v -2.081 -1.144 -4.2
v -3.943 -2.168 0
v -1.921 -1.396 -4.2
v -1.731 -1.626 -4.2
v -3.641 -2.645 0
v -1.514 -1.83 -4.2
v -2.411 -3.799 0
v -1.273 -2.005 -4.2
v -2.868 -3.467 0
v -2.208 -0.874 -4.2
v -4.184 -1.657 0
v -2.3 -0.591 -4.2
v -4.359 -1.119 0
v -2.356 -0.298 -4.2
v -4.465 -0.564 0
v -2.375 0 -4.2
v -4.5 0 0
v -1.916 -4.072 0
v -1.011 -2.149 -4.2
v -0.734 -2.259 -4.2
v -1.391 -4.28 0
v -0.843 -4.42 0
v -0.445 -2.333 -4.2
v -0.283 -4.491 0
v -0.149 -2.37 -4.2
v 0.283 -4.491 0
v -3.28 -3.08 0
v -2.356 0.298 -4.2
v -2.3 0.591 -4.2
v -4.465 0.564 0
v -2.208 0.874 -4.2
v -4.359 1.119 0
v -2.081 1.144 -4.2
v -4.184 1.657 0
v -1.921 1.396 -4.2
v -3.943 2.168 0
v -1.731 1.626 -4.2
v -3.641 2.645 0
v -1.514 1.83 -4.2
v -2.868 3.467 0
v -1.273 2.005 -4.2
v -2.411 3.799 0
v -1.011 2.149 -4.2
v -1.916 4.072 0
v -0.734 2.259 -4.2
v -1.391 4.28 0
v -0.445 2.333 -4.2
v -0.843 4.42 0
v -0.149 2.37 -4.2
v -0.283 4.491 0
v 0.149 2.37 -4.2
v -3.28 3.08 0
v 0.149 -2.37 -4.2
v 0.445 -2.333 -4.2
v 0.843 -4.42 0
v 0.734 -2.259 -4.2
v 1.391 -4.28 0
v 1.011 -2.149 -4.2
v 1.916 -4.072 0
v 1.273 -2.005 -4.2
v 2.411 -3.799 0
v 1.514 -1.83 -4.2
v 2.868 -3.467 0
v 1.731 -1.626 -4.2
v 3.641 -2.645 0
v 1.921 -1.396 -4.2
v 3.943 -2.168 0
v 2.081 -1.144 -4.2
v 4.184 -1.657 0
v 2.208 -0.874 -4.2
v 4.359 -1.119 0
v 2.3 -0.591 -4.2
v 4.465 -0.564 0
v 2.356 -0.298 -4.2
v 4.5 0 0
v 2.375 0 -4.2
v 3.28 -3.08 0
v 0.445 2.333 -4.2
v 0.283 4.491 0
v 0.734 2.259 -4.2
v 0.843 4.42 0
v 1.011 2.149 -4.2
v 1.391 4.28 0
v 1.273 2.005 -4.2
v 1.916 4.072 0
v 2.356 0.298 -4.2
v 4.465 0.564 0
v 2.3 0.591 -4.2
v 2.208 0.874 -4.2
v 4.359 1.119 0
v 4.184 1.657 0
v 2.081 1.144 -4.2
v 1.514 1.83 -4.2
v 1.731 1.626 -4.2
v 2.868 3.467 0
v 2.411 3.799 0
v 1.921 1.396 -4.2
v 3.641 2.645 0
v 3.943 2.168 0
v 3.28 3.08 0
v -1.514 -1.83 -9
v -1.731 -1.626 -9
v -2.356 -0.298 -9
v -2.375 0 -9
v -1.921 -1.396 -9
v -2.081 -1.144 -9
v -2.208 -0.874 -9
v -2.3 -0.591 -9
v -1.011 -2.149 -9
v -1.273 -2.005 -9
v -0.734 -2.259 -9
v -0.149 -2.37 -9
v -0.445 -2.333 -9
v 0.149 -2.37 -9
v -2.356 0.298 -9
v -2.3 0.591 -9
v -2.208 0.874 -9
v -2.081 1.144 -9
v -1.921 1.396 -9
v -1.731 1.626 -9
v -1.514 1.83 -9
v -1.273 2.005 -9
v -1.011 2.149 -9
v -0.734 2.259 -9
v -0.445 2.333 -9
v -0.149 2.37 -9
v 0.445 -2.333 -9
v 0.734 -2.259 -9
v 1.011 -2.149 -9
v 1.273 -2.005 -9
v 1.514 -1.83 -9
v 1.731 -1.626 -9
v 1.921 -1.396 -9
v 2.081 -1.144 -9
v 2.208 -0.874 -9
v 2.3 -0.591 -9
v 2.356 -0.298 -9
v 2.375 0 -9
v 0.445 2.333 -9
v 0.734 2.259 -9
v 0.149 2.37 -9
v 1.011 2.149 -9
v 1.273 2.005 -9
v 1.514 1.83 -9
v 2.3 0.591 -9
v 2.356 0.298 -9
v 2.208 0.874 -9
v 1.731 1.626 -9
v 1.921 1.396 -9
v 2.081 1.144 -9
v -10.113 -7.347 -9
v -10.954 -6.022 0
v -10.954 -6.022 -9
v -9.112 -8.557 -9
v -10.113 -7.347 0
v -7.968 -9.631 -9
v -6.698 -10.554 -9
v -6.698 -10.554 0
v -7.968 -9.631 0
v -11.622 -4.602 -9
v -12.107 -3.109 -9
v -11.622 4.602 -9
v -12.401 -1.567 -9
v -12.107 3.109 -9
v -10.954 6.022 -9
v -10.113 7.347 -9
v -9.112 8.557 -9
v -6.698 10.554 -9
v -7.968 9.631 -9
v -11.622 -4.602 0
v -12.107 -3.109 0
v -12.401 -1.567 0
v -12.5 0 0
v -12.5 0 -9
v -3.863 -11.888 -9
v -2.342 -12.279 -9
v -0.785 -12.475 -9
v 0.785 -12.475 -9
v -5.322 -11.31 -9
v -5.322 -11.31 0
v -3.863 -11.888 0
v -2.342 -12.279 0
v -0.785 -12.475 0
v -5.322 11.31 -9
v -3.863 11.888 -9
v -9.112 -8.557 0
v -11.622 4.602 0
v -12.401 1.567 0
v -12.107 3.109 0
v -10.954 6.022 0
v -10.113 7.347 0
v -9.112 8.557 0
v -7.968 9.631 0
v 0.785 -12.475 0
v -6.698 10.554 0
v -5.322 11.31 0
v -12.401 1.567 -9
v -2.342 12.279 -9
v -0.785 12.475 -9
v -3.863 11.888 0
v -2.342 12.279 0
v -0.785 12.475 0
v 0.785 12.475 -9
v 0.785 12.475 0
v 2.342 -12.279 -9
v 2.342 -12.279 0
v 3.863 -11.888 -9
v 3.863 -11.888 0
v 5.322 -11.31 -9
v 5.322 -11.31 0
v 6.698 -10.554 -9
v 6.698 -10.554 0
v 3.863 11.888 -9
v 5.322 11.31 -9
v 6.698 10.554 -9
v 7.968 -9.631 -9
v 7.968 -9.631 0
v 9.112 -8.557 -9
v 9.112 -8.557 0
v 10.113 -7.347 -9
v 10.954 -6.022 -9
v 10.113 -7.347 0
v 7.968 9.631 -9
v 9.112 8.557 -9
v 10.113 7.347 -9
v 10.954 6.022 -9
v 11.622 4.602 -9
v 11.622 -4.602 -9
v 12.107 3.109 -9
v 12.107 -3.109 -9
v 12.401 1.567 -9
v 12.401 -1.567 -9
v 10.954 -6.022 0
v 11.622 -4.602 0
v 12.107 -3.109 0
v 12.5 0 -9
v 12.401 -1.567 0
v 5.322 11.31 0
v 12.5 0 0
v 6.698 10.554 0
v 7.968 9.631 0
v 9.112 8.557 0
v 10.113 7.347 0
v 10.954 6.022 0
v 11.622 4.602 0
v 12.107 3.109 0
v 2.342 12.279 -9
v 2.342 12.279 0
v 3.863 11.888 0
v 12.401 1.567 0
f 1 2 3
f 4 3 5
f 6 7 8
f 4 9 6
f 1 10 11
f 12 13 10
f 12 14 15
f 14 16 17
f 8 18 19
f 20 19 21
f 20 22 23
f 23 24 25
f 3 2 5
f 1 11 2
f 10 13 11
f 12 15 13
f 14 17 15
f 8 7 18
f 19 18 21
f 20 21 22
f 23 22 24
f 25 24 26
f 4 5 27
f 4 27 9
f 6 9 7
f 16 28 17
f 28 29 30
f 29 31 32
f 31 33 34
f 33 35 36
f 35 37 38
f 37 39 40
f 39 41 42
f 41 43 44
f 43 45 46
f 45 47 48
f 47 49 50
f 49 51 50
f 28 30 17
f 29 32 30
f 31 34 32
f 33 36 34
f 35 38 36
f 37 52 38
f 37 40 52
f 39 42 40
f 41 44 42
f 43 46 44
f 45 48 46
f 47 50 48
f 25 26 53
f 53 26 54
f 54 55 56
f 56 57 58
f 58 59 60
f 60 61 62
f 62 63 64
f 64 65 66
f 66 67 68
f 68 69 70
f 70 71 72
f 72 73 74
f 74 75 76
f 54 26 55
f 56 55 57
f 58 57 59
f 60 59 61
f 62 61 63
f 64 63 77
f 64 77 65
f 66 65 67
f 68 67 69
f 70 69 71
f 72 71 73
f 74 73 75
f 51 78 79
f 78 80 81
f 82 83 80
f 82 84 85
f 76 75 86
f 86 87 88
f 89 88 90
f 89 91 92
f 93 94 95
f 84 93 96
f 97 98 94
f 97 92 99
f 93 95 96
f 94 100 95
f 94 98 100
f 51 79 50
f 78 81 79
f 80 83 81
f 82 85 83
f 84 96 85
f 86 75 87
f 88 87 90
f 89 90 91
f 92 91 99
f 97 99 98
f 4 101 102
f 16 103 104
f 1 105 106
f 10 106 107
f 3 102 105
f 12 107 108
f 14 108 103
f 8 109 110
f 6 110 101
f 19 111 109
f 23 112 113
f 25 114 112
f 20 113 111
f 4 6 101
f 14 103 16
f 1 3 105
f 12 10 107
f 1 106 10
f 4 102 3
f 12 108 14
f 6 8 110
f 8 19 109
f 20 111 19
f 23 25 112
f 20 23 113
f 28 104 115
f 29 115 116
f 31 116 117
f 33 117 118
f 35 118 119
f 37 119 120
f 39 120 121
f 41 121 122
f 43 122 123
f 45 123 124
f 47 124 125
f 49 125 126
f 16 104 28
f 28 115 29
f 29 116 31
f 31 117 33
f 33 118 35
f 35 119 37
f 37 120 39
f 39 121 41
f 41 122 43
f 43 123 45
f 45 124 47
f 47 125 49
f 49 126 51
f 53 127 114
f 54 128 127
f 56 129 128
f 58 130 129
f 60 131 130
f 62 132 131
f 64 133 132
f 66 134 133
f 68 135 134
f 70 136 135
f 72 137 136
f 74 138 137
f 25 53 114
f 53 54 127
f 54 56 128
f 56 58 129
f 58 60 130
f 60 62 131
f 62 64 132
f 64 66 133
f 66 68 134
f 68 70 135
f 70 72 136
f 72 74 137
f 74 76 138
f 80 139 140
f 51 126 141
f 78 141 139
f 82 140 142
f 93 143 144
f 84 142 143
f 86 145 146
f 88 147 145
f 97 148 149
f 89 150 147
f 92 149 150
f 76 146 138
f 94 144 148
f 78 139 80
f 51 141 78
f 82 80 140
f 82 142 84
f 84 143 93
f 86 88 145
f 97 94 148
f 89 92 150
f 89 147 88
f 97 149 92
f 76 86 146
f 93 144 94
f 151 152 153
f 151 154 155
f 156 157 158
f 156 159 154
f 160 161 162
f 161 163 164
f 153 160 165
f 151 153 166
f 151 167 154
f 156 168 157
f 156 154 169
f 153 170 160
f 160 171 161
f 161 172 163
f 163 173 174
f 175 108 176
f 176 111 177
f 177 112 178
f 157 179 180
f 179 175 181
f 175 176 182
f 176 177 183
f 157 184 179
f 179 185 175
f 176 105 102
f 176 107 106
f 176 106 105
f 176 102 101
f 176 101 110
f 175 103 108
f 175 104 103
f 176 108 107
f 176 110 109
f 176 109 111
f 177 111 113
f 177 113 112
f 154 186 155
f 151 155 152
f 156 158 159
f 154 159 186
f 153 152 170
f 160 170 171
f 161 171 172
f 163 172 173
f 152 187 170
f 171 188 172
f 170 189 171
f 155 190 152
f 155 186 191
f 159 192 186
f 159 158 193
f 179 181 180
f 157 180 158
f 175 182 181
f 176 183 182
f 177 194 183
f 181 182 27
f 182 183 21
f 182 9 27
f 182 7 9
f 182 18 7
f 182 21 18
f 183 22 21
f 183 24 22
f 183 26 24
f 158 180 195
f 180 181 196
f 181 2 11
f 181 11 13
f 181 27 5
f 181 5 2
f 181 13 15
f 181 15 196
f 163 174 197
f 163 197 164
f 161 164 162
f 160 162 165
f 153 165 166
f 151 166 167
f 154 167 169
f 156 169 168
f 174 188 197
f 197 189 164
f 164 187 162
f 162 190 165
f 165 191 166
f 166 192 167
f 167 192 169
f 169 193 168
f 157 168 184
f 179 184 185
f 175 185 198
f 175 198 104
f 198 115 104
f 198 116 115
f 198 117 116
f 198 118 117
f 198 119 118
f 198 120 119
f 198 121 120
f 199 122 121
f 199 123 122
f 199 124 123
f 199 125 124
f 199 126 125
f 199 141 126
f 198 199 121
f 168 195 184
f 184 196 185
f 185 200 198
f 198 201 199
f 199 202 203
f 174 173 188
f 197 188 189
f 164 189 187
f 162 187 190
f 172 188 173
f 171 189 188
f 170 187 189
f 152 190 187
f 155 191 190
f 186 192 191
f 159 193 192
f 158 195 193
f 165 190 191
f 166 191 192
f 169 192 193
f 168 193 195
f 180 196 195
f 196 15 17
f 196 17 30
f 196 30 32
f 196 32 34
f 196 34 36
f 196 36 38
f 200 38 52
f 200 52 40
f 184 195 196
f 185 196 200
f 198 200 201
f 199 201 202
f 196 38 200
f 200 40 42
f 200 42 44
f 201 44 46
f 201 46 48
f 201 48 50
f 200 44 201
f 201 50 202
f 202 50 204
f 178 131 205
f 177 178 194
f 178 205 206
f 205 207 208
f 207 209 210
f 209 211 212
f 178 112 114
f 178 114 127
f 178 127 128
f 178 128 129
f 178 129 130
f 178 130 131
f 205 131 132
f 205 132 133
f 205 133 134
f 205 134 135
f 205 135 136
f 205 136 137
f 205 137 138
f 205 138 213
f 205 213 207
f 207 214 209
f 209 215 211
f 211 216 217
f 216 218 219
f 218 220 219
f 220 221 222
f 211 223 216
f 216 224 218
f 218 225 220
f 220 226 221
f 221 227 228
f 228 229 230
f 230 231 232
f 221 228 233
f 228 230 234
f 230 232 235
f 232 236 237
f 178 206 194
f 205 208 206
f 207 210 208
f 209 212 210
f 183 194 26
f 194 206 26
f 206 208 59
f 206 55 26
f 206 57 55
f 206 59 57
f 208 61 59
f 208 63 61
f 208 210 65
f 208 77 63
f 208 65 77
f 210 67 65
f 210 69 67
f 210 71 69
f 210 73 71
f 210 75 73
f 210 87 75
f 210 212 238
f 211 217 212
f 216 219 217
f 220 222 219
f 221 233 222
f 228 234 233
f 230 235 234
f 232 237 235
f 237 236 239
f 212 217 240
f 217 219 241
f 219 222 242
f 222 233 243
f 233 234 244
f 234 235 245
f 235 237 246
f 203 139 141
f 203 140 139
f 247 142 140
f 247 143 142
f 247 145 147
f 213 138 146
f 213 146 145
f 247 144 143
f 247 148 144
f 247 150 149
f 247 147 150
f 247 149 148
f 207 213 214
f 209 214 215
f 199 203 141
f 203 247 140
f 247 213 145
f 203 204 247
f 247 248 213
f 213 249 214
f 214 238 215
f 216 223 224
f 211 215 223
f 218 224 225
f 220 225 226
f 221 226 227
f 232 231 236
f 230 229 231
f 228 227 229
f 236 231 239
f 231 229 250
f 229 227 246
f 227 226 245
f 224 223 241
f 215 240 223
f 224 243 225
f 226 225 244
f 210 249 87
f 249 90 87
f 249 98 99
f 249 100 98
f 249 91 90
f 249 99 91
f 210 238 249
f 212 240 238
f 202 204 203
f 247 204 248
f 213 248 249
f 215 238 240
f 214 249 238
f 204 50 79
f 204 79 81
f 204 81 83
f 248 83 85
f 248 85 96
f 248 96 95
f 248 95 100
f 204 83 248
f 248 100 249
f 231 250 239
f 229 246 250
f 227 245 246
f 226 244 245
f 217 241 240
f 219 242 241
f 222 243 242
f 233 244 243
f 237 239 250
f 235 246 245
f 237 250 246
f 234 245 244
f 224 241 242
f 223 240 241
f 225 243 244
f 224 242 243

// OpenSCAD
$fn = 50;


difference() {
	union() {
		translate(v = [0, 0, -9.0000000000]) {
			cylinder(h = 9, r = 12.5000000000);
		}
	}
	union() {
		translate(v = [0, 0, 0]) {
			rotate(a = [0, 0, 0]) {
				difference() {
					union() {
						translate(v = [0, 0, -12.0000000000]) {
							cylinder(h = 12, r = 2.2500000000);
						}
						translate(v = [0, 0, -4.2000000000]) {
							cylinder(h = 4.2000000000, r1 = 2.3750000000, r2 = 4.5000000000);
						}
						translate(v = [0, 0, -12.0000000000]) {
							cylinder(h = 12, r = 2.3750000000);
						}
						translate(v = [0, 0, -12.0000000000]) {
							cylinder(h = 12, r = 2.2500000000);
						}
					}
					union();
				}
			}
		}
	}
}
